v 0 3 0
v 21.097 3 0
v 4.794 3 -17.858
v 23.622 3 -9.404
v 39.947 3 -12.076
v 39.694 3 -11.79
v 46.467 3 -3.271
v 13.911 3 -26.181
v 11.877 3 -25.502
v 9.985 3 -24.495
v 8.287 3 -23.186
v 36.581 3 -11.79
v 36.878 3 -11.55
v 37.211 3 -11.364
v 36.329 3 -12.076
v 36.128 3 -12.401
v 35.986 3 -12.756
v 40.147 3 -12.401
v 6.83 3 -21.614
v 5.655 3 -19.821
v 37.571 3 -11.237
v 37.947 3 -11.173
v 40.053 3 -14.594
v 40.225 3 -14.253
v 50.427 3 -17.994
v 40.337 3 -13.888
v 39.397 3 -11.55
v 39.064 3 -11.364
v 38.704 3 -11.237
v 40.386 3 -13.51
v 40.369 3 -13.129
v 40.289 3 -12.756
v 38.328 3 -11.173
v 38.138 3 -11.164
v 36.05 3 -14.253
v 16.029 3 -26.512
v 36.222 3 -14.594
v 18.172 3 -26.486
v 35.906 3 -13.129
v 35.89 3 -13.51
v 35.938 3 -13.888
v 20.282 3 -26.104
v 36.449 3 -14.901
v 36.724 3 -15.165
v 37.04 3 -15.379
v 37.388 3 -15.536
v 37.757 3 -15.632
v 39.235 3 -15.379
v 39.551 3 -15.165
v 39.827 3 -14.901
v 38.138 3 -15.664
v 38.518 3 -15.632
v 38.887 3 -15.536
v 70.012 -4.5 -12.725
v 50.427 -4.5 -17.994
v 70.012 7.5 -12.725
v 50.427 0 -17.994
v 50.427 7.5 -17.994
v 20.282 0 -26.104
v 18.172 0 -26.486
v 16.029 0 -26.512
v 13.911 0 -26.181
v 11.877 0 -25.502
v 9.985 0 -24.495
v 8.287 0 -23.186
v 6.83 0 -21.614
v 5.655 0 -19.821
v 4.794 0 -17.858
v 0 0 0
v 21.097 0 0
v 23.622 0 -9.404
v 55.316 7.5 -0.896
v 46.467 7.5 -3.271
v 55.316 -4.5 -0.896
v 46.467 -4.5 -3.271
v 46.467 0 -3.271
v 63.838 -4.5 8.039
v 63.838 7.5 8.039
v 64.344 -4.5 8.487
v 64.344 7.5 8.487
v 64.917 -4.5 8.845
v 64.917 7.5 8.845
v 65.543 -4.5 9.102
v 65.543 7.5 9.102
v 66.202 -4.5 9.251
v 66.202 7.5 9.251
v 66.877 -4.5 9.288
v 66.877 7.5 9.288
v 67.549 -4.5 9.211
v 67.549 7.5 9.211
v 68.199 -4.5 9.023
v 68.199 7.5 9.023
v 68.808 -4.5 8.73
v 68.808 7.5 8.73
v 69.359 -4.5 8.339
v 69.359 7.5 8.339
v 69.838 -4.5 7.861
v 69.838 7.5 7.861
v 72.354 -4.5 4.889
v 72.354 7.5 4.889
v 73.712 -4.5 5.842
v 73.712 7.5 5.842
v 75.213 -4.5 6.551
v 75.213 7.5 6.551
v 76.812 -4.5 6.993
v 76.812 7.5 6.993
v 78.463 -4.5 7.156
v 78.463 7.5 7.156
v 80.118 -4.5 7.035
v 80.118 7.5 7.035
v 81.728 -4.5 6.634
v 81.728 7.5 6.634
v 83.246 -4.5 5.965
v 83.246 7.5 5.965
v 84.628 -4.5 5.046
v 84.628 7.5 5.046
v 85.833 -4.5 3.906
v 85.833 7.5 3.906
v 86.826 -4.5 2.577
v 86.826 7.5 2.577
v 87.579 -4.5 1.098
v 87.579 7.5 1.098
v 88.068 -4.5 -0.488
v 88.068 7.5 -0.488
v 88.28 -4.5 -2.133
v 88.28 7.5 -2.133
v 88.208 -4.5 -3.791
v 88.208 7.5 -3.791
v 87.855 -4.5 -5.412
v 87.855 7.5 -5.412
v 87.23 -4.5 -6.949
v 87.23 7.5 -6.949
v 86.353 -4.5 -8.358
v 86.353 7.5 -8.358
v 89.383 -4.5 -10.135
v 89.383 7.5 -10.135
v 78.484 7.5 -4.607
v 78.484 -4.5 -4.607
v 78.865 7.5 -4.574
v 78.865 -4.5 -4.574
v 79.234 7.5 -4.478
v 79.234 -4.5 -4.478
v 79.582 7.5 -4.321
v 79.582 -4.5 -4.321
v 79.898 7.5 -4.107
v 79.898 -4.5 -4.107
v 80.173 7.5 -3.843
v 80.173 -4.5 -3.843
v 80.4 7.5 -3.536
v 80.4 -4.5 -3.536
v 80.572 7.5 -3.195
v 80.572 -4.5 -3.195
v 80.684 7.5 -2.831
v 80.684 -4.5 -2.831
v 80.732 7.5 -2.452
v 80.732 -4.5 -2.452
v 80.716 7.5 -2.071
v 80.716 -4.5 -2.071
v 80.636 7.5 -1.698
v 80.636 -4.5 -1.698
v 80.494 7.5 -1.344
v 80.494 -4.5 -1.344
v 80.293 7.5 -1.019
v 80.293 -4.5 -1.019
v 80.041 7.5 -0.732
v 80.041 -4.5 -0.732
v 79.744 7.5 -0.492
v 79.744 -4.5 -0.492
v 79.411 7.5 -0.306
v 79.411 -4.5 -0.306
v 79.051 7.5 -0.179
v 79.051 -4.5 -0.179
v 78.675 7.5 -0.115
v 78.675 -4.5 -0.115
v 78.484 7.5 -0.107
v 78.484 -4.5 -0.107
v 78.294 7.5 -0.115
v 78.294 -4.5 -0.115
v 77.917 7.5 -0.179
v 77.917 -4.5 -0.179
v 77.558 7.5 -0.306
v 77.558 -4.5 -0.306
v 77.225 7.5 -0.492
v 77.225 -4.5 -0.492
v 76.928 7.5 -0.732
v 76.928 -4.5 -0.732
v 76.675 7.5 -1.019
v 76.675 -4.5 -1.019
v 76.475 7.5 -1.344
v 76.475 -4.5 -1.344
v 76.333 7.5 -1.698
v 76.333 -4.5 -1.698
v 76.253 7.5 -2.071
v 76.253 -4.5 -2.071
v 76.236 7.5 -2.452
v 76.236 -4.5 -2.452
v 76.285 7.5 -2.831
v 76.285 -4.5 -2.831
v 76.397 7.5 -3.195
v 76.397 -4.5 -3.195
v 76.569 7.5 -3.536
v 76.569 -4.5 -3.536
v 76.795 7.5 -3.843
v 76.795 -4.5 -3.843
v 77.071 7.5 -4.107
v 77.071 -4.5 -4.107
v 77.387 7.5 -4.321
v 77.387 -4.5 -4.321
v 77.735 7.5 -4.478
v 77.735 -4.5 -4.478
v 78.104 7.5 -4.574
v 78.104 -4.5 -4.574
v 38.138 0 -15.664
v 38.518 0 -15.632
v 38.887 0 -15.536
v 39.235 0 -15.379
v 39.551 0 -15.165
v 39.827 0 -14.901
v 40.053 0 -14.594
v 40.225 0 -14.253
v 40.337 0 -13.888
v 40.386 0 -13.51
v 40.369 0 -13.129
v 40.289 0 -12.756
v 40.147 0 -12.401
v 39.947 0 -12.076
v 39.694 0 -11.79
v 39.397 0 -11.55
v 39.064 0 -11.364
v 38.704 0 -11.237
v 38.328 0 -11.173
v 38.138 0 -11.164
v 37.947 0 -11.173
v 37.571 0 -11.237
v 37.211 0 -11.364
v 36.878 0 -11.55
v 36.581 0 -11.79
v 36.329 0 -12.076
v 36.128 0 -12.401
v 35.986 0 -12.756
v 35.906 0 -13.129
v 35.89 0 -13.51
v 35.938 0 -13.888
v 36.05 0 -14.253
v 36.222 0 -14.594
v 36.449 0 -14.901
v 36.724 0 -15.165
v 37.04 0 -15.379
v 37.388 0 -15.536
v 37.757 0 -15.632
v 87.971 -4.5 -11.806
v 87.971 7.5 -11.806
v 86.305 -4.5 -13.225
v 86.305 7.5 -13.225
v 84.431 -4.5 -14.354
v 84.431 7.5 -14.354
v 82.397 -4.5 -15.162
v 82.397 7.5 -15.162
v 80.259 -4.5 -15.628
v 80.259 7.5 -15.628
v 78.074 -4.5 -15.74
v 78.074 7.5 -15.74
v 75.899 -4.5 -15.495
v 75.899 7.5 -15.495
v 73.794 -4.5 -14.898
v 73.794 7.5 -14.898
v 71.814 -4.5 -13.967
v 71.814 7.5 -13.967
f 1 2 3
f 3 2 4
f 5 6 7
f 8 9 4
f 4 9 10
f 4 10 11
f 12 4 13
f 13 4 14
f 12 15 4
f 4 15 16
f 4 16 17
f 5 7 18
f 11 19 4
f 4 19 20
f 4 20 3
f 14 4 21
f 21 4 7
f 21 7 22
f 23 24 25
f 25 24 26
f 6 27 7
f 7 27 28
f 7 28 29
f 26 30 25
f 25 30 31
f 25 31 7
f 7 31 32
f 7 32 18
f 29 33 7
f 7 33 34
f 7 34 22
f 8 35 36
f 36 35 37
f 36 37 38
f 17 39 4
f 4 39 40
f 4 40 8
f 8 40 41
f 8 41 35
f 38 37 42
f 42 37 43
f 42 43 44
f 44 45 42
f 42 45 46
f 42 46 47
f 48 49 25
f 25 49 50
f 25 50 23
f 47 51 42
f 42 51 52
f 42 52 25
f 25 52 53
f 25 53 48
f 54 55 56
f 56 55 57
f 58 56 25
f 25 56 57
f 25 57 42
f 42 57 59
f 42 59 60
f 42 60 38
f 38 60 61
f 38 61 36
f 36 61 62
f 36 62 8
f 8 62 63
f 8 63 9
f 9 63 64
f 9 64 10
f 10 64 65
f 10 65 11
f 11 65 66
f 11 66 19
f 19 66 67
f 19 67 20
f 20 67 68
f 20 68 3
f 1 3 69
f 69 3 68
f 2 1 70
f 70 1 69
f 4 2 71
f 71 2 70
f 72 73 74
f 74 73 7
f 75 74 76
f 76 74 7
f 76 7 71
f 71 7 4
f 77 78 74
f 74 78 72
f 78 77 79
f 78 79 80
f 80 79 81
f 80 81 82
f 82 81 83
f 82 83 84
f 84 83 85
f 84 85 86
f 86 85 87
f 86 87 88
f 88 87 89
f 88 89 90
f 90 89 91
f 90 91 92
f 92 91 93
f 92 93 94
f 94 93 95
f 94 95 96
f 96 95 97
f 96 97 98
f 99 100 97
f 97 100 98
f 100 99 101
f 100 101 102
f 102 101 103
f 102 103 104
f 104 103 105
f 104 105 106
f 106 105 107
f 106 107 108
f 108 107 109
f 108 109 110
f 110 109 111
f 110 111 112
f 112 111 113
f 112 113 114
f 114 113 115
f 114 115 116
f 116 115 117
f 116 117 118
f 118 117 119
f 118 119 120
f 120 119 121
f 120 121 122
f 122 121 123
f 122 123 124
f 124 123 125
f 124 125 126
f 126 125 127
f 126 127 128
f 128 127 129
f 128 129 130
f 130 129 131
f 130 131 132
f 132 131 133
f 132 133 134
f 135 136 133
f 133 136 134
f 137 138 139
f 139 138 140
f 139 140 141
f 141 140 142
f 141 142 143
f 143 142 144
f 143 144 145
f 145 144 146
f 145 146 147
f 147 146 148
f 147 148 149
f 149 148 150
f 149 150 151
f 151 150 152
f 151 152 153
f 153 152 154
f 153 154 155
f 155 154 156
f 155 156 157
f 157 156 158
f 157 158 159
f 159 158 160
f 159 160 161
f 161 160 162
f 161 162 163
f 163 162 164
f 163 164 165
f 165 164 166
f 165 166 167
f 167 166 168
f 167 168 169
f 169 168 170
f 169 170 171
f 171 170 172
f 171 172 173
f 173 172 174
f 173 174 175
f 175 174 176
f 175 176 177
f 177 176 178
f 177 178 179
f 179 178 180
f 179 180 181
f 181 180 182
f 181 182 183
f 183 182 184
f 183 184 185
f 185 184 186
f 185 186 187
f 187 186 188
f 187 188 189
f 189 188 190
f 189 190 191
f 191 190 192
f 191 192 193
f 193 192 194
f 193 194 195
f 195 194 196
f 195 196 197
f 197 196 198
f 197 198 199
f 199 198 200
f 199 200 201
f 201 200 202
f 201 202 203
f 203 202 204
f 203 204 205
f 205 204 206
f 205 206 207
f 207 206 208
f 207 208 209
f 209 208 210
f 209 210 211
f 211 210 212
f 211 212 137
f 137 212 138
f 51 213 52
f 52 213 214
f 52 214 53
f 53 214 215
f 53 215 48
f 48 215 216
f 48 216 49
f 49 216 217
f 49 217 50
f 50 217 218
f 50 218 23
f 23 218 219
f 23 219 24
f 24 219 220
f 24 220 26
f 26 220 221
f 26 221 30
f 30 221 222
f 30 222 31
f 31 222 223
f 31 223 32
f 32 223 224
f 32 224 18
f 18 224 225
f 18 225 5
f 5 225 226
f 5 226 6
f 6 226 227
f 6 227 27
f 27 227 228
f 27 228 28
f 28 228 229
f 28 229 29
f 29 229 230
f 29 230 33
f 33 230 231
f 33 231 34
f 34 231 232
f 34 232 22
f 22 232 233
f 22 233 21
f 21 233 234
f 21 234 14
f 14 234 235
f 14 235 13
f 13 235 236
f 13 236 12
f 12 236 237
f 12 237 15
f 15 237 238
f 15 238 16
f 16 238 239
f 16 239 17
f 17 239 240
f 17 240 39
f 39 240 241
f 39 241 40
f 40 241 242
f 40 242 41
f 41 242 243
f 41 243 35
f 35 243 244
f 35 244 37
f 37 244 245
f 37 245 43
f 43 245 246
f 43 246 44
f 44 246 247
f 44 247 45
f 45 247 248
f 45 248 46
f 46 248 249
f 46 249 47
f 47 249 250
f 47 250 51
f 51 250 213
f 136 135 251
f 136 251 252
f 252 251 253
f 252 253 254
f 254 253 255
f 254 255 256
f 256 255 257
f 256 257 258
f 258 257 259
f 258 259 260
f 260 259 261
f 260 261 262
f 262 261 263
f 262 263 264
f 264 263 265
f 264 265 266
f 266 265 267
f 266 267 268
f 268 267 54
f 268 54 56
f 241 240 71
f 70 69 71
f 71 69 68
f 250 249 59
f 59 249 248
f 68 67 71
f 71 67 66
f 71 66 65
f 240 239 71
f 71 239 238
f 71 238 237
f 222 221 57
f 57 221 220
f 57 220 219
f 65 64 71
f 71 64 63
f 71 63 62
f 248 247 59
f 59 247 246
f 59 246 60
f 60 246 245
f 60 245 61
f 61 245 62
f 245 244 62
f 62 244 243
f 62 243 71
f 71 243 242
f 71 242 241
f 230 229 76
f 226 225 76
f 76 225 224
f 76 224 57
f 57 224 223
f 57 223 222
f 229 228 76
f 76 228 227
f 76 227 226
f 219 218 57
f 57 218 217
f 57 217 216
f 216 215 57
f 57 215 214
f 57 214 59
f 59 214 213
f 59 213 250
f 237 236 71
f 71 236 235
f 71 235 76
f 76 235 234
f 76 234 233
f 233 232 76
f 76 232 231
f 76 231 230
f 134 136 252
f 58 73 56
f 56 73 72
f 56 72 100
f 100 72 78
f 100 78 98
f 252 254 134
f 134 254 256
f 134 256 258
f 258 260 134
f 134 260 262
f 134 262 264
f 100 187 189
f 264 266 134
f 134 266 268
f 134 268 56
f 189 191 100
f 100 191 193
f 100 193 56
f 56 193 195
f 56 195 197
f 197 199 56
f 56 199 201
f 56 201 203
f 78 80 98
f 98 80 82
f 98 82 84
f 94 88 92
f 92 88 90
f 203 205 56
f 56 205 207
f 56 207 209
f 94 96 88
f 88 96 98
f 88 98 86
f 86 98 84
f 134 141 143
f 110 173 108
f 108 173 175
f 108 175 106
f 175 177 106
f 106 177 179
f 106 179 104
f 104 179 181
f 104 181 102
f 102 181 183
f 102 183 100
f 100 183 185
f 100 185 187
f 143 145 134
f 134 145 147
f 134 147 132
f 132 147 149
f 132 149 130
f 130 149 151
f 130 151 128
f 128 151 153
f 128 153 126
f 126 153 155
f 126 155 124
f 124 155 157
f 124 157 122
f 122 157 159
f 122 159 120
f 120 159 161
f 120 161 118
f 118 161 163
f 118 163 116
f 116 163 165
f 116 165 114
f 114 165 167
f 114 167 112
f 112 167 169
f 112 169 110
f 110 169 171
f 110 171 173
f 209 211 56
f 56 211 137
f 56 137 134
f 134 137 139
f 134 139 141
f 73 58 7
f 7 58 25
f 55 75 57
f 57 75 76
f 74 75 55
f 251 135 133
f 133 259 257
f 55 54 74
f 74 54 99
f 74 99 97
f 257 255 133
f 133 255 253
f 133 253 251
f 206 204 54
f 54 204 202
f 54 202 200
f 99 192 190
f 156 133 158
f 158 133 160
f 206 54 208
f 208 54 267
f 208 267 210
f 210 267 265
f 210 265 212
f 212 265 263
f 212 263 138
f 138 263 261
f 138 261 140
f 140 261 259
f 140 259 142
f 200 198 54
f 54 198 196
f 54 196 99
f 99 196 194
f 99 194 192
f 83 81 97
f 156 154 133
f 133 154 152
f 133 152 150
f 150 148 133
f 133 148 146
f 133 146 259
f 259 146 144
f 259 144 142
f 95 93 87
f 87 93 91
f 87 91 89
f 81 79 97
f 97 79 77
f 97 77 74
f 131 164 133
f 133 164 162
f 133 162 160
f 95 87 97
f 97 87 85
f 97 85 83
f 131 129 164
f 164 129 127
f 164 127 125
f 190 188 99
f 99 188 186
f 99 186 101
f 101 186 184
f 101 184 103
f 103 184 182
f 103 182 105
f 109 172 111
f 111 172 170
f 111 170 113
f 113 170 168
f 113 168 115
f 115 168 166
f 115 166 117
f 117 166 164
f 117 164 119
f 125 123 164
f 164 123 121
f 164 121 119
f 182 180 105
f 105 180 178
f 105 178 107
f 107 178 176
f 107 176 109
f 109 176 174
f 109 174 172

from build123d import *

# Parameters (mm, degrees)
SKETCH1_R           = 2.25
BOSS_EXTRUDE1_DEPTH = 3
SKETCH6_R           = 2.25
BOSS_EXTRUDE3_DEPTH = 4.5
BOSS_EXTRUDE4_START = -3
SKETCH6_4_R         = 2.25
BOSS_EXTRUDE4_DEPTH = 4.5


with BuildPart() as part:
    # Sketch1 → Boss-Extrude1 (new body)
    with BuildSketch(Plane(origin=(0, 0, 0), x_dir=(1, 0, 0), z_dir=(0, 1, 0))):
        with BuildLine():
            Line((4.346556407, 16.19061741), (0, 0))
            Line((0, 0), (21.097139824, 0))
            Line((21.097139824, 0), (23.621877097, 9.40446906))
            Line((23.621877097, 9.40446906), (55.315636071, 0.895916999))
            Line((55.315636071, 0.895916999), (63.837679632, -8.03903216))
            ThreePointArc((63.837679632, -8.03903216), (66.877486097, -9.287511543), (69.837996716, -7.861152194))
            Line((69.837996716, -7.861152194), (72.354139199, -4.888856081))
            ThreePointArc((72.354139199, -4.888856081), (85.255098096, -4.502096268), (86.353286495, 8.357853416))
            Line((86.353286495, 8.357853416), (89.383500932, 10.135016952))
            ThreePointArc((89.383500932, 10.135016952), (80.259194518, 15.628469331), (70.012090644, 12.72539359))
            Line((70.012090644, 12.72539359), (20.281795984, 26.10351195))
            ThreePointArc((20.281795984, 26.10351195), (10.910267874, 25.037898105), (4.794128684, 17.857792715))
            Line((4.794128684, 17.857792715), (4.346556407, 16.19061741))
        make_face()
        with Locations((78.484447615, 2.356518872)):
            Circle(SKETCH1_R, mode=Mode.SUBTRACT)
        with Locations((38.137547341, 13.414423288)):
            Circle(SKETCH1_R, mode=Mode.SUBTRACT)
    extrude(amount=BOSS_EXTRUDE1_DEPTH)

    # Sketch6 → Boss-Extrude3 (add)
    with BuildSketch(Plane(origin=(0, 3, 0), x_dir=(1, 0, 0), z_dir=(0, 1, 0))):
        with BuildLine():
            Line((46.466786902, 3.271491758), (55.315636071, 0.895916999))
            Line((55.315636071, 0.895916999), (63.837679632, -8.03903216))
            ThreePointArc((63.837679632, -8.03903216), (66.877486097, -9.287511543), (69.837996716, -7.861152194))
            Line((69.837996716, -7.861152194), (72.354139199, -4.888856081))
            ThreePointArc((72.354139199, -4.888856081), (85.255098096, -4.502096268), (86.353286495, 8.357853416))
            Line((86.353286495, 8.357853416), (89.383500932, 10.135016952))
            ThreePointArc((89.383500932, 10.135016952), (80.259194518, 15.628469331), (70.012090644, 12.72539359))
            Line((70.012090644, 12.72539359), (50.427328439, 17.993958126))
            Line((50.427328439, 17.993958126), (46.466786902, 3.271491758))
        make_face()
        with Locations((78.484447615, 2.356518872)):
            Circle(SKETCH6_R, mode=Mode.SUBTRACT)
    extrude(amount=BOSS_EXTRUDE3_DEPTH)

    # Sketch6<4> → Boss-Extrude4 (add)
    with BuildSketch(Plane(origin=(0, 3, 0), x_dir=(1, 0, 0), z_dir=(0, 1, 0)).offset(BOSS_EXTRUDE4_START)):
        with BuildLine():
            Line((46.466786902, 3.271491758), (55.315636071, 0.895916999))
            Line((55.315636071, 0.895916999), (63.837679632, -8.03903216))
            ThreePointArc((63.837679632, -8.03903216), (66.877486097, -9.287511543), (69.837996716, -7.861152194))
            Line((69.837996716, -7.861152194), (72.354139199, -4.888856081))
            ThreePointArc((72.354139199, -4.888856081), (85.255098096, -4.502096268), (86.353286495, 8.357853416))
            Line((86.353286495, 8.357853416), (89.383500932, 10.135016952))
            ThreePointArc((89.383500932, 10.135016952), (80.259194518, 15.628469331), (70.012090644, 12.72539359))
            Line((70.012090644, 12.72539359), (50.427328439, 17.993958126))
            Line((50.427328439, 17.993958126), (46.466786902, 3.271491758))
        make_face()
        with Locations((78.484447615, 2.356518872)):
            Circle(SKETCH6_4_R, mode=Mode.SUBTRACT)
    extrude(amount=-BOSS_EXTRUDE4_DEPTH)


solid = part.part
